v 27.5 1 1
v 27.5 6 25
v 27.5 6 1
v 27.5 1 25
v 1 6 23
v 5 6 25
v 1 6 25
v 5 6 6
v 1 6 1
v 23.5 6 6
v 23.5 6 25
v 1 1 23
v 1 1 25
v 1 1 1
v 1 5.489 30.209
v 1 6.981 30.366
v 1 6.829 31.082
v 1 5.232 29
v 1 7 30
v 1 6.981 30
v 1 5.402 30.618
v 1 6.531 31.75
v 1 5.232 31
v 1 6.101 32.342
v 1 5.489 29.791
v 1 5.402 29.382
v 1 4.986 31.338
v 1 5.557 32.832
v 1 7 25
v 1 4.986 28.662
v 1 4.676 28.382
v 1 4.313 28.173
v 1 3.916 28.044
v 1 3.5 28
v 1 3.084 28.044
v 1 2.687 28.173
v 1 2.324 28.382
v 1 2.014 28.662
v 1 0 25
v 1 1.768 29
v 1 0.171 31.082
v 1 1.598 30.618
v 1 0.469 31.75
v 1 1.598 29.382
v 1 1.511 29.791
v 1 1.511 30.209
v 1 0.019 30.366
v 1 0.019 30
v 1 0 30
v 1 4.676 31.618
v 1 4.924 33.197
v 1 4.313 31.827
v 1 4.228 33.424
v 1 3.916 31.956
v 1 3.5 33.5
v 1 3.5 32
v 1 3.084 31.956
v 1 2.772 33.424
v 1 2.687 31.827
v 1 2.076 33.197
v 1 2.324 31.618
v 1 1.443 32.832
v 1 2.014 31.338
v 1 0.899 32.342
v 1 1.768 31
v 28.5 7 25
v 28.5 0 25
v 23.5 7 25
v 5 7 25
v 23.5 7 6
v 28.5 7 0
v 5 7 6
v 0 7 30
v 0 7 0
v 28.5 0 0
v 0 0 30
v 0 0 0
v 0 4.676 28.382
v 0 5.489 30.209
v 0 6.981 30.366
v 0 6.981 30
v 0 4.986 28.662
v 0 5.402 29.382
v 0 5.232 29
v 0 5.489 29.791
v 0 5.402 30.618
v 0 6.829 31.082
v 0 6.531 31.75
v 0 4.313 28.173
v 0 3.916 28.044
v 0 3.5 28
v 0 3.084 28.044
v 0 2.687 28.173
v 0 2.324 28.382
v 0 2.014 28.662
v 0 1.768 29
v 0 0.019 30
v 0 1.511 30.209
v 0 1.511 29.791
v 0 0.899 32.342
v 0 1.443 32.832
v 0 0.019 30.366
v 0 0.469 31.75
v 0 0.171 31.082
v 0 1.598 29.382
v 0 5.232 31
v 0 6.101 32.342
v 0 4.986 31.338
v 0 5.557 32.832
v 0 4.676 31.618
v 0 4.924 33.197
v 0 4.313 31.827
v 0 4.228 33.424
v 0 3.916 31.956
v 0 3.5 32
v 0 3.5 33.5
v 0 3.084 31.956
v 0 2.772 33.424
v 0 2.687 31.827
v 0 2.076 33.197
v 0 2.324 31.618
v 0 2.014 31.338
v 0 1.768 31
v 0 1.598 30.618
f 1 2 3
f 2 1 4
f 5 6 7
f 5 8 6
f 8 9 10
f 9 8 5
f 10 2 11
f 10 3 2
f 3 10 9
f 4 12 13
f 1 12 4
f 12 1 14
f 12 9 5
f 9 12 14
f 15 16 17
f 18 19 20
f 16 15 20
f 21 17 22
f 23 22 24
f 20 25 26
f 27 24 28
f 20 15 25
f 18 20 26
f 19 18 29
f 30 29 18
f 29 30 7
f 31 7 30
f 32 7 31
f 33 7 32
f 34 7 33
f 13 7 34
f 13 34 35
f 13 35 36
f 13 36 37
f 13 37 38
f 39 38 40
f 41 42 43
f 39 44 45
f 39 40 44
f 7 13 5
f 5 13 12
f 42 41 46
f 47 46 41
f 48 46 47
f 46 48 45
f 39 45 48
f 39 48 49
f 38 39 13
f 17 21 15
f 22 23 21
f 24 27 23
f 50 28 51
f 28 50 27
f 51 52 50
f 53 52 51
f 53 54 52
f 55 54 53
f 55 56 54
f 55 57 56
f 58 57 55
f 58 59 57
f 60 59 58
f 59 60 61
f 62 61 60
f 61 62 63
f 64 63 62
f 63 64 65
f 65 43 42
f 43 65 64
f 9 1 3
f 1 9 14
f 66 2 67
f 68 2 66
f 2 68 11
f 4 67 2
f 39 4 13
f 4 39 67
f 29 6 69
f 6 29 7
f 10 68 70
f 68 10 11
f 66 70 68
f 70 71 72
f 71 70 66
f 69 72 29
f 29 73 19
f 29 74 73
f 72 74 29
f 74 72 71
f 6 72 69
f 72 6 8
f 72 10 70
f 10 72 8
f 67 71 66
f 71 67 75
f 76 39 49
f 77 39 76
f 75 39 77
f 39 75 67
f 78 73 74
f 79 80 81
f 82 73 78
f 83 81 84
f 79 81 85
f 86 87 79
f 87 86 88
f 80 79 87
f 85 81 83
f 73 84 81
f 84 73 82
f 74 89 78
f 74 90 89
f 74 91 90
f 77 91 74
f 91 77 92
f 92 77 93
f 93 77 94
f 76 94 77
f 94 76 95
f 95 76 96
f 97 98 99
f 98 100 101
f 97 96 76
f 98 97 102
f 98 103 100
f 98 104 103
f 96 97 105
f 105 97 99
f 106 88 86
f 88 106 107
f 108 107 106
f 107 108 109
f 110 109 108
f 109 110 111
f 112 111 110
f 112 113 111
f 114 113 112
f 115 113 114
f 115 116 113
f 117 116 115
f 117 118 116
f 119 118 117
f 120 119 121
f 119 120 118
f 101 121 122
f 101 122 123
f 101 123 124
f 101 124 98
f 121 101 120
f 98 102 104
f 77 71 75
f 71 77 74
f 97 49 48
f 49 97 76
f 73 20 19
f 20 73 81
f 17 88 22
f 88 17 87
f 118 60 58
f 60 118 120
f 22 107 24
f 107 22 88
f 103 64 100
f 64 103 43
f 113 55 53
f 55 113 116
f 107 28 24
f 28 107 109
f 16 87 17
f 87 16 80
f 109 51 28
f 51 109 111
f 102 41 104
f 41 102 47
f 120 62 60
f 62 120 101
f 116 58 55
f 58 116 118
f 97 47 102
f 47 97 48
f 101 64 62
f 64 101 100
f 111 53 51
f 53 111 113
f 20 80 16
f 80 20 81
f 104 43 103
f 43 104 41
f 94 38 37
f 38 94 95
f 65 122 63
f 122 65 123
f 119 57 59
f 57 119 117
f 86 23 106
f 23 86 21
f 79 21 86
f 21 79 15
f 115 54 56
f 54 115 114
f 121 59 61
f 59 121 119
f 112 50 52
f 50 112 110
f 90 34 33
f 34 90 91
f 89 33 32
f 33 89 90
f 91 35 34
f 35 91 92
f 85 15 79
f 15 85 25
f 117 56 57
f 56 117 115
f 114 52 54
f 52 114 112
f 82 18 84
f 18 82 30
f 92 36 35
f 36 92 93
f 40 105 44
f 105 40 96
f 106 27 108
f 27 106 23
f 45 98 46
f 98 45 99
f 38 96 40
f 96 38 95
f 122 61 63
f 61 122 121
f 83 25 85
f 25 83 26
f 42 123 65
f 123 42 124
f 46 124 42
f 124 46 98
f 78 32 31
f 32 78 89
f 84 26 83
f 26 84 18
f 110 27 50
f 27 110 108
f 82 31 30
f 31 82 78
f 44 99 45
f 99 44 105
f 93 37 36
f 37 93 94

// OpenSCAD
slot_width = 26.5;
slot_length= 24;
slot_height = 5;
overhang = 5;
wall_thickness = 1;

total_width = slot_width + 2 * wall_thickness;
total_length = slot_length + wall_thickness;
total_height = slot_height + 2 * wall_thickness;

$fn = 30;
union(){
	translate([0,0,slot_length-wall_thickness])
		translate([wall_thickness, slot_height+2*wall_thickness, slot_height+2*wall_thickness])
			rotate([180, 0, 0])difference(){
				union(){
					translate([-wall_thickness, 0, 0])cube([wall_thickness, slot_height+2*wall_thickness, slot_height+2*wall_thickness]);
					translate([-wall_thickness, (slot_height+2*wall_thickness)/2, 0])rotate([0, 90, 0])cylinder(r=(slot_height+2*wall_thickness)/2, h=wall_thickness);
				}
				translate([-wall_thickness, (slot_height+2*wall_thickness)/2, 0])rotate([0,90,0])cylinder(r=2, h=wall_thickness);
			}
	translate([0, 0, slot_length+wall_thickness])rotate([-90, 0, 0])difference(){
	    cube(size = [total_width, total_length, total_height], center = false);
	    union(){
	        translate([wall_thickness, 0, wall_thickness])
	            cube(size = [slot_width, slot_length, slot_height], center = false);
	        translate([overhang, 0, slot_height + wall_thickness])
	        	cube(size = [total_width - 2 * overhang, slot_length - overhang, wall_thickness], center = false);
	    }
	}
}
